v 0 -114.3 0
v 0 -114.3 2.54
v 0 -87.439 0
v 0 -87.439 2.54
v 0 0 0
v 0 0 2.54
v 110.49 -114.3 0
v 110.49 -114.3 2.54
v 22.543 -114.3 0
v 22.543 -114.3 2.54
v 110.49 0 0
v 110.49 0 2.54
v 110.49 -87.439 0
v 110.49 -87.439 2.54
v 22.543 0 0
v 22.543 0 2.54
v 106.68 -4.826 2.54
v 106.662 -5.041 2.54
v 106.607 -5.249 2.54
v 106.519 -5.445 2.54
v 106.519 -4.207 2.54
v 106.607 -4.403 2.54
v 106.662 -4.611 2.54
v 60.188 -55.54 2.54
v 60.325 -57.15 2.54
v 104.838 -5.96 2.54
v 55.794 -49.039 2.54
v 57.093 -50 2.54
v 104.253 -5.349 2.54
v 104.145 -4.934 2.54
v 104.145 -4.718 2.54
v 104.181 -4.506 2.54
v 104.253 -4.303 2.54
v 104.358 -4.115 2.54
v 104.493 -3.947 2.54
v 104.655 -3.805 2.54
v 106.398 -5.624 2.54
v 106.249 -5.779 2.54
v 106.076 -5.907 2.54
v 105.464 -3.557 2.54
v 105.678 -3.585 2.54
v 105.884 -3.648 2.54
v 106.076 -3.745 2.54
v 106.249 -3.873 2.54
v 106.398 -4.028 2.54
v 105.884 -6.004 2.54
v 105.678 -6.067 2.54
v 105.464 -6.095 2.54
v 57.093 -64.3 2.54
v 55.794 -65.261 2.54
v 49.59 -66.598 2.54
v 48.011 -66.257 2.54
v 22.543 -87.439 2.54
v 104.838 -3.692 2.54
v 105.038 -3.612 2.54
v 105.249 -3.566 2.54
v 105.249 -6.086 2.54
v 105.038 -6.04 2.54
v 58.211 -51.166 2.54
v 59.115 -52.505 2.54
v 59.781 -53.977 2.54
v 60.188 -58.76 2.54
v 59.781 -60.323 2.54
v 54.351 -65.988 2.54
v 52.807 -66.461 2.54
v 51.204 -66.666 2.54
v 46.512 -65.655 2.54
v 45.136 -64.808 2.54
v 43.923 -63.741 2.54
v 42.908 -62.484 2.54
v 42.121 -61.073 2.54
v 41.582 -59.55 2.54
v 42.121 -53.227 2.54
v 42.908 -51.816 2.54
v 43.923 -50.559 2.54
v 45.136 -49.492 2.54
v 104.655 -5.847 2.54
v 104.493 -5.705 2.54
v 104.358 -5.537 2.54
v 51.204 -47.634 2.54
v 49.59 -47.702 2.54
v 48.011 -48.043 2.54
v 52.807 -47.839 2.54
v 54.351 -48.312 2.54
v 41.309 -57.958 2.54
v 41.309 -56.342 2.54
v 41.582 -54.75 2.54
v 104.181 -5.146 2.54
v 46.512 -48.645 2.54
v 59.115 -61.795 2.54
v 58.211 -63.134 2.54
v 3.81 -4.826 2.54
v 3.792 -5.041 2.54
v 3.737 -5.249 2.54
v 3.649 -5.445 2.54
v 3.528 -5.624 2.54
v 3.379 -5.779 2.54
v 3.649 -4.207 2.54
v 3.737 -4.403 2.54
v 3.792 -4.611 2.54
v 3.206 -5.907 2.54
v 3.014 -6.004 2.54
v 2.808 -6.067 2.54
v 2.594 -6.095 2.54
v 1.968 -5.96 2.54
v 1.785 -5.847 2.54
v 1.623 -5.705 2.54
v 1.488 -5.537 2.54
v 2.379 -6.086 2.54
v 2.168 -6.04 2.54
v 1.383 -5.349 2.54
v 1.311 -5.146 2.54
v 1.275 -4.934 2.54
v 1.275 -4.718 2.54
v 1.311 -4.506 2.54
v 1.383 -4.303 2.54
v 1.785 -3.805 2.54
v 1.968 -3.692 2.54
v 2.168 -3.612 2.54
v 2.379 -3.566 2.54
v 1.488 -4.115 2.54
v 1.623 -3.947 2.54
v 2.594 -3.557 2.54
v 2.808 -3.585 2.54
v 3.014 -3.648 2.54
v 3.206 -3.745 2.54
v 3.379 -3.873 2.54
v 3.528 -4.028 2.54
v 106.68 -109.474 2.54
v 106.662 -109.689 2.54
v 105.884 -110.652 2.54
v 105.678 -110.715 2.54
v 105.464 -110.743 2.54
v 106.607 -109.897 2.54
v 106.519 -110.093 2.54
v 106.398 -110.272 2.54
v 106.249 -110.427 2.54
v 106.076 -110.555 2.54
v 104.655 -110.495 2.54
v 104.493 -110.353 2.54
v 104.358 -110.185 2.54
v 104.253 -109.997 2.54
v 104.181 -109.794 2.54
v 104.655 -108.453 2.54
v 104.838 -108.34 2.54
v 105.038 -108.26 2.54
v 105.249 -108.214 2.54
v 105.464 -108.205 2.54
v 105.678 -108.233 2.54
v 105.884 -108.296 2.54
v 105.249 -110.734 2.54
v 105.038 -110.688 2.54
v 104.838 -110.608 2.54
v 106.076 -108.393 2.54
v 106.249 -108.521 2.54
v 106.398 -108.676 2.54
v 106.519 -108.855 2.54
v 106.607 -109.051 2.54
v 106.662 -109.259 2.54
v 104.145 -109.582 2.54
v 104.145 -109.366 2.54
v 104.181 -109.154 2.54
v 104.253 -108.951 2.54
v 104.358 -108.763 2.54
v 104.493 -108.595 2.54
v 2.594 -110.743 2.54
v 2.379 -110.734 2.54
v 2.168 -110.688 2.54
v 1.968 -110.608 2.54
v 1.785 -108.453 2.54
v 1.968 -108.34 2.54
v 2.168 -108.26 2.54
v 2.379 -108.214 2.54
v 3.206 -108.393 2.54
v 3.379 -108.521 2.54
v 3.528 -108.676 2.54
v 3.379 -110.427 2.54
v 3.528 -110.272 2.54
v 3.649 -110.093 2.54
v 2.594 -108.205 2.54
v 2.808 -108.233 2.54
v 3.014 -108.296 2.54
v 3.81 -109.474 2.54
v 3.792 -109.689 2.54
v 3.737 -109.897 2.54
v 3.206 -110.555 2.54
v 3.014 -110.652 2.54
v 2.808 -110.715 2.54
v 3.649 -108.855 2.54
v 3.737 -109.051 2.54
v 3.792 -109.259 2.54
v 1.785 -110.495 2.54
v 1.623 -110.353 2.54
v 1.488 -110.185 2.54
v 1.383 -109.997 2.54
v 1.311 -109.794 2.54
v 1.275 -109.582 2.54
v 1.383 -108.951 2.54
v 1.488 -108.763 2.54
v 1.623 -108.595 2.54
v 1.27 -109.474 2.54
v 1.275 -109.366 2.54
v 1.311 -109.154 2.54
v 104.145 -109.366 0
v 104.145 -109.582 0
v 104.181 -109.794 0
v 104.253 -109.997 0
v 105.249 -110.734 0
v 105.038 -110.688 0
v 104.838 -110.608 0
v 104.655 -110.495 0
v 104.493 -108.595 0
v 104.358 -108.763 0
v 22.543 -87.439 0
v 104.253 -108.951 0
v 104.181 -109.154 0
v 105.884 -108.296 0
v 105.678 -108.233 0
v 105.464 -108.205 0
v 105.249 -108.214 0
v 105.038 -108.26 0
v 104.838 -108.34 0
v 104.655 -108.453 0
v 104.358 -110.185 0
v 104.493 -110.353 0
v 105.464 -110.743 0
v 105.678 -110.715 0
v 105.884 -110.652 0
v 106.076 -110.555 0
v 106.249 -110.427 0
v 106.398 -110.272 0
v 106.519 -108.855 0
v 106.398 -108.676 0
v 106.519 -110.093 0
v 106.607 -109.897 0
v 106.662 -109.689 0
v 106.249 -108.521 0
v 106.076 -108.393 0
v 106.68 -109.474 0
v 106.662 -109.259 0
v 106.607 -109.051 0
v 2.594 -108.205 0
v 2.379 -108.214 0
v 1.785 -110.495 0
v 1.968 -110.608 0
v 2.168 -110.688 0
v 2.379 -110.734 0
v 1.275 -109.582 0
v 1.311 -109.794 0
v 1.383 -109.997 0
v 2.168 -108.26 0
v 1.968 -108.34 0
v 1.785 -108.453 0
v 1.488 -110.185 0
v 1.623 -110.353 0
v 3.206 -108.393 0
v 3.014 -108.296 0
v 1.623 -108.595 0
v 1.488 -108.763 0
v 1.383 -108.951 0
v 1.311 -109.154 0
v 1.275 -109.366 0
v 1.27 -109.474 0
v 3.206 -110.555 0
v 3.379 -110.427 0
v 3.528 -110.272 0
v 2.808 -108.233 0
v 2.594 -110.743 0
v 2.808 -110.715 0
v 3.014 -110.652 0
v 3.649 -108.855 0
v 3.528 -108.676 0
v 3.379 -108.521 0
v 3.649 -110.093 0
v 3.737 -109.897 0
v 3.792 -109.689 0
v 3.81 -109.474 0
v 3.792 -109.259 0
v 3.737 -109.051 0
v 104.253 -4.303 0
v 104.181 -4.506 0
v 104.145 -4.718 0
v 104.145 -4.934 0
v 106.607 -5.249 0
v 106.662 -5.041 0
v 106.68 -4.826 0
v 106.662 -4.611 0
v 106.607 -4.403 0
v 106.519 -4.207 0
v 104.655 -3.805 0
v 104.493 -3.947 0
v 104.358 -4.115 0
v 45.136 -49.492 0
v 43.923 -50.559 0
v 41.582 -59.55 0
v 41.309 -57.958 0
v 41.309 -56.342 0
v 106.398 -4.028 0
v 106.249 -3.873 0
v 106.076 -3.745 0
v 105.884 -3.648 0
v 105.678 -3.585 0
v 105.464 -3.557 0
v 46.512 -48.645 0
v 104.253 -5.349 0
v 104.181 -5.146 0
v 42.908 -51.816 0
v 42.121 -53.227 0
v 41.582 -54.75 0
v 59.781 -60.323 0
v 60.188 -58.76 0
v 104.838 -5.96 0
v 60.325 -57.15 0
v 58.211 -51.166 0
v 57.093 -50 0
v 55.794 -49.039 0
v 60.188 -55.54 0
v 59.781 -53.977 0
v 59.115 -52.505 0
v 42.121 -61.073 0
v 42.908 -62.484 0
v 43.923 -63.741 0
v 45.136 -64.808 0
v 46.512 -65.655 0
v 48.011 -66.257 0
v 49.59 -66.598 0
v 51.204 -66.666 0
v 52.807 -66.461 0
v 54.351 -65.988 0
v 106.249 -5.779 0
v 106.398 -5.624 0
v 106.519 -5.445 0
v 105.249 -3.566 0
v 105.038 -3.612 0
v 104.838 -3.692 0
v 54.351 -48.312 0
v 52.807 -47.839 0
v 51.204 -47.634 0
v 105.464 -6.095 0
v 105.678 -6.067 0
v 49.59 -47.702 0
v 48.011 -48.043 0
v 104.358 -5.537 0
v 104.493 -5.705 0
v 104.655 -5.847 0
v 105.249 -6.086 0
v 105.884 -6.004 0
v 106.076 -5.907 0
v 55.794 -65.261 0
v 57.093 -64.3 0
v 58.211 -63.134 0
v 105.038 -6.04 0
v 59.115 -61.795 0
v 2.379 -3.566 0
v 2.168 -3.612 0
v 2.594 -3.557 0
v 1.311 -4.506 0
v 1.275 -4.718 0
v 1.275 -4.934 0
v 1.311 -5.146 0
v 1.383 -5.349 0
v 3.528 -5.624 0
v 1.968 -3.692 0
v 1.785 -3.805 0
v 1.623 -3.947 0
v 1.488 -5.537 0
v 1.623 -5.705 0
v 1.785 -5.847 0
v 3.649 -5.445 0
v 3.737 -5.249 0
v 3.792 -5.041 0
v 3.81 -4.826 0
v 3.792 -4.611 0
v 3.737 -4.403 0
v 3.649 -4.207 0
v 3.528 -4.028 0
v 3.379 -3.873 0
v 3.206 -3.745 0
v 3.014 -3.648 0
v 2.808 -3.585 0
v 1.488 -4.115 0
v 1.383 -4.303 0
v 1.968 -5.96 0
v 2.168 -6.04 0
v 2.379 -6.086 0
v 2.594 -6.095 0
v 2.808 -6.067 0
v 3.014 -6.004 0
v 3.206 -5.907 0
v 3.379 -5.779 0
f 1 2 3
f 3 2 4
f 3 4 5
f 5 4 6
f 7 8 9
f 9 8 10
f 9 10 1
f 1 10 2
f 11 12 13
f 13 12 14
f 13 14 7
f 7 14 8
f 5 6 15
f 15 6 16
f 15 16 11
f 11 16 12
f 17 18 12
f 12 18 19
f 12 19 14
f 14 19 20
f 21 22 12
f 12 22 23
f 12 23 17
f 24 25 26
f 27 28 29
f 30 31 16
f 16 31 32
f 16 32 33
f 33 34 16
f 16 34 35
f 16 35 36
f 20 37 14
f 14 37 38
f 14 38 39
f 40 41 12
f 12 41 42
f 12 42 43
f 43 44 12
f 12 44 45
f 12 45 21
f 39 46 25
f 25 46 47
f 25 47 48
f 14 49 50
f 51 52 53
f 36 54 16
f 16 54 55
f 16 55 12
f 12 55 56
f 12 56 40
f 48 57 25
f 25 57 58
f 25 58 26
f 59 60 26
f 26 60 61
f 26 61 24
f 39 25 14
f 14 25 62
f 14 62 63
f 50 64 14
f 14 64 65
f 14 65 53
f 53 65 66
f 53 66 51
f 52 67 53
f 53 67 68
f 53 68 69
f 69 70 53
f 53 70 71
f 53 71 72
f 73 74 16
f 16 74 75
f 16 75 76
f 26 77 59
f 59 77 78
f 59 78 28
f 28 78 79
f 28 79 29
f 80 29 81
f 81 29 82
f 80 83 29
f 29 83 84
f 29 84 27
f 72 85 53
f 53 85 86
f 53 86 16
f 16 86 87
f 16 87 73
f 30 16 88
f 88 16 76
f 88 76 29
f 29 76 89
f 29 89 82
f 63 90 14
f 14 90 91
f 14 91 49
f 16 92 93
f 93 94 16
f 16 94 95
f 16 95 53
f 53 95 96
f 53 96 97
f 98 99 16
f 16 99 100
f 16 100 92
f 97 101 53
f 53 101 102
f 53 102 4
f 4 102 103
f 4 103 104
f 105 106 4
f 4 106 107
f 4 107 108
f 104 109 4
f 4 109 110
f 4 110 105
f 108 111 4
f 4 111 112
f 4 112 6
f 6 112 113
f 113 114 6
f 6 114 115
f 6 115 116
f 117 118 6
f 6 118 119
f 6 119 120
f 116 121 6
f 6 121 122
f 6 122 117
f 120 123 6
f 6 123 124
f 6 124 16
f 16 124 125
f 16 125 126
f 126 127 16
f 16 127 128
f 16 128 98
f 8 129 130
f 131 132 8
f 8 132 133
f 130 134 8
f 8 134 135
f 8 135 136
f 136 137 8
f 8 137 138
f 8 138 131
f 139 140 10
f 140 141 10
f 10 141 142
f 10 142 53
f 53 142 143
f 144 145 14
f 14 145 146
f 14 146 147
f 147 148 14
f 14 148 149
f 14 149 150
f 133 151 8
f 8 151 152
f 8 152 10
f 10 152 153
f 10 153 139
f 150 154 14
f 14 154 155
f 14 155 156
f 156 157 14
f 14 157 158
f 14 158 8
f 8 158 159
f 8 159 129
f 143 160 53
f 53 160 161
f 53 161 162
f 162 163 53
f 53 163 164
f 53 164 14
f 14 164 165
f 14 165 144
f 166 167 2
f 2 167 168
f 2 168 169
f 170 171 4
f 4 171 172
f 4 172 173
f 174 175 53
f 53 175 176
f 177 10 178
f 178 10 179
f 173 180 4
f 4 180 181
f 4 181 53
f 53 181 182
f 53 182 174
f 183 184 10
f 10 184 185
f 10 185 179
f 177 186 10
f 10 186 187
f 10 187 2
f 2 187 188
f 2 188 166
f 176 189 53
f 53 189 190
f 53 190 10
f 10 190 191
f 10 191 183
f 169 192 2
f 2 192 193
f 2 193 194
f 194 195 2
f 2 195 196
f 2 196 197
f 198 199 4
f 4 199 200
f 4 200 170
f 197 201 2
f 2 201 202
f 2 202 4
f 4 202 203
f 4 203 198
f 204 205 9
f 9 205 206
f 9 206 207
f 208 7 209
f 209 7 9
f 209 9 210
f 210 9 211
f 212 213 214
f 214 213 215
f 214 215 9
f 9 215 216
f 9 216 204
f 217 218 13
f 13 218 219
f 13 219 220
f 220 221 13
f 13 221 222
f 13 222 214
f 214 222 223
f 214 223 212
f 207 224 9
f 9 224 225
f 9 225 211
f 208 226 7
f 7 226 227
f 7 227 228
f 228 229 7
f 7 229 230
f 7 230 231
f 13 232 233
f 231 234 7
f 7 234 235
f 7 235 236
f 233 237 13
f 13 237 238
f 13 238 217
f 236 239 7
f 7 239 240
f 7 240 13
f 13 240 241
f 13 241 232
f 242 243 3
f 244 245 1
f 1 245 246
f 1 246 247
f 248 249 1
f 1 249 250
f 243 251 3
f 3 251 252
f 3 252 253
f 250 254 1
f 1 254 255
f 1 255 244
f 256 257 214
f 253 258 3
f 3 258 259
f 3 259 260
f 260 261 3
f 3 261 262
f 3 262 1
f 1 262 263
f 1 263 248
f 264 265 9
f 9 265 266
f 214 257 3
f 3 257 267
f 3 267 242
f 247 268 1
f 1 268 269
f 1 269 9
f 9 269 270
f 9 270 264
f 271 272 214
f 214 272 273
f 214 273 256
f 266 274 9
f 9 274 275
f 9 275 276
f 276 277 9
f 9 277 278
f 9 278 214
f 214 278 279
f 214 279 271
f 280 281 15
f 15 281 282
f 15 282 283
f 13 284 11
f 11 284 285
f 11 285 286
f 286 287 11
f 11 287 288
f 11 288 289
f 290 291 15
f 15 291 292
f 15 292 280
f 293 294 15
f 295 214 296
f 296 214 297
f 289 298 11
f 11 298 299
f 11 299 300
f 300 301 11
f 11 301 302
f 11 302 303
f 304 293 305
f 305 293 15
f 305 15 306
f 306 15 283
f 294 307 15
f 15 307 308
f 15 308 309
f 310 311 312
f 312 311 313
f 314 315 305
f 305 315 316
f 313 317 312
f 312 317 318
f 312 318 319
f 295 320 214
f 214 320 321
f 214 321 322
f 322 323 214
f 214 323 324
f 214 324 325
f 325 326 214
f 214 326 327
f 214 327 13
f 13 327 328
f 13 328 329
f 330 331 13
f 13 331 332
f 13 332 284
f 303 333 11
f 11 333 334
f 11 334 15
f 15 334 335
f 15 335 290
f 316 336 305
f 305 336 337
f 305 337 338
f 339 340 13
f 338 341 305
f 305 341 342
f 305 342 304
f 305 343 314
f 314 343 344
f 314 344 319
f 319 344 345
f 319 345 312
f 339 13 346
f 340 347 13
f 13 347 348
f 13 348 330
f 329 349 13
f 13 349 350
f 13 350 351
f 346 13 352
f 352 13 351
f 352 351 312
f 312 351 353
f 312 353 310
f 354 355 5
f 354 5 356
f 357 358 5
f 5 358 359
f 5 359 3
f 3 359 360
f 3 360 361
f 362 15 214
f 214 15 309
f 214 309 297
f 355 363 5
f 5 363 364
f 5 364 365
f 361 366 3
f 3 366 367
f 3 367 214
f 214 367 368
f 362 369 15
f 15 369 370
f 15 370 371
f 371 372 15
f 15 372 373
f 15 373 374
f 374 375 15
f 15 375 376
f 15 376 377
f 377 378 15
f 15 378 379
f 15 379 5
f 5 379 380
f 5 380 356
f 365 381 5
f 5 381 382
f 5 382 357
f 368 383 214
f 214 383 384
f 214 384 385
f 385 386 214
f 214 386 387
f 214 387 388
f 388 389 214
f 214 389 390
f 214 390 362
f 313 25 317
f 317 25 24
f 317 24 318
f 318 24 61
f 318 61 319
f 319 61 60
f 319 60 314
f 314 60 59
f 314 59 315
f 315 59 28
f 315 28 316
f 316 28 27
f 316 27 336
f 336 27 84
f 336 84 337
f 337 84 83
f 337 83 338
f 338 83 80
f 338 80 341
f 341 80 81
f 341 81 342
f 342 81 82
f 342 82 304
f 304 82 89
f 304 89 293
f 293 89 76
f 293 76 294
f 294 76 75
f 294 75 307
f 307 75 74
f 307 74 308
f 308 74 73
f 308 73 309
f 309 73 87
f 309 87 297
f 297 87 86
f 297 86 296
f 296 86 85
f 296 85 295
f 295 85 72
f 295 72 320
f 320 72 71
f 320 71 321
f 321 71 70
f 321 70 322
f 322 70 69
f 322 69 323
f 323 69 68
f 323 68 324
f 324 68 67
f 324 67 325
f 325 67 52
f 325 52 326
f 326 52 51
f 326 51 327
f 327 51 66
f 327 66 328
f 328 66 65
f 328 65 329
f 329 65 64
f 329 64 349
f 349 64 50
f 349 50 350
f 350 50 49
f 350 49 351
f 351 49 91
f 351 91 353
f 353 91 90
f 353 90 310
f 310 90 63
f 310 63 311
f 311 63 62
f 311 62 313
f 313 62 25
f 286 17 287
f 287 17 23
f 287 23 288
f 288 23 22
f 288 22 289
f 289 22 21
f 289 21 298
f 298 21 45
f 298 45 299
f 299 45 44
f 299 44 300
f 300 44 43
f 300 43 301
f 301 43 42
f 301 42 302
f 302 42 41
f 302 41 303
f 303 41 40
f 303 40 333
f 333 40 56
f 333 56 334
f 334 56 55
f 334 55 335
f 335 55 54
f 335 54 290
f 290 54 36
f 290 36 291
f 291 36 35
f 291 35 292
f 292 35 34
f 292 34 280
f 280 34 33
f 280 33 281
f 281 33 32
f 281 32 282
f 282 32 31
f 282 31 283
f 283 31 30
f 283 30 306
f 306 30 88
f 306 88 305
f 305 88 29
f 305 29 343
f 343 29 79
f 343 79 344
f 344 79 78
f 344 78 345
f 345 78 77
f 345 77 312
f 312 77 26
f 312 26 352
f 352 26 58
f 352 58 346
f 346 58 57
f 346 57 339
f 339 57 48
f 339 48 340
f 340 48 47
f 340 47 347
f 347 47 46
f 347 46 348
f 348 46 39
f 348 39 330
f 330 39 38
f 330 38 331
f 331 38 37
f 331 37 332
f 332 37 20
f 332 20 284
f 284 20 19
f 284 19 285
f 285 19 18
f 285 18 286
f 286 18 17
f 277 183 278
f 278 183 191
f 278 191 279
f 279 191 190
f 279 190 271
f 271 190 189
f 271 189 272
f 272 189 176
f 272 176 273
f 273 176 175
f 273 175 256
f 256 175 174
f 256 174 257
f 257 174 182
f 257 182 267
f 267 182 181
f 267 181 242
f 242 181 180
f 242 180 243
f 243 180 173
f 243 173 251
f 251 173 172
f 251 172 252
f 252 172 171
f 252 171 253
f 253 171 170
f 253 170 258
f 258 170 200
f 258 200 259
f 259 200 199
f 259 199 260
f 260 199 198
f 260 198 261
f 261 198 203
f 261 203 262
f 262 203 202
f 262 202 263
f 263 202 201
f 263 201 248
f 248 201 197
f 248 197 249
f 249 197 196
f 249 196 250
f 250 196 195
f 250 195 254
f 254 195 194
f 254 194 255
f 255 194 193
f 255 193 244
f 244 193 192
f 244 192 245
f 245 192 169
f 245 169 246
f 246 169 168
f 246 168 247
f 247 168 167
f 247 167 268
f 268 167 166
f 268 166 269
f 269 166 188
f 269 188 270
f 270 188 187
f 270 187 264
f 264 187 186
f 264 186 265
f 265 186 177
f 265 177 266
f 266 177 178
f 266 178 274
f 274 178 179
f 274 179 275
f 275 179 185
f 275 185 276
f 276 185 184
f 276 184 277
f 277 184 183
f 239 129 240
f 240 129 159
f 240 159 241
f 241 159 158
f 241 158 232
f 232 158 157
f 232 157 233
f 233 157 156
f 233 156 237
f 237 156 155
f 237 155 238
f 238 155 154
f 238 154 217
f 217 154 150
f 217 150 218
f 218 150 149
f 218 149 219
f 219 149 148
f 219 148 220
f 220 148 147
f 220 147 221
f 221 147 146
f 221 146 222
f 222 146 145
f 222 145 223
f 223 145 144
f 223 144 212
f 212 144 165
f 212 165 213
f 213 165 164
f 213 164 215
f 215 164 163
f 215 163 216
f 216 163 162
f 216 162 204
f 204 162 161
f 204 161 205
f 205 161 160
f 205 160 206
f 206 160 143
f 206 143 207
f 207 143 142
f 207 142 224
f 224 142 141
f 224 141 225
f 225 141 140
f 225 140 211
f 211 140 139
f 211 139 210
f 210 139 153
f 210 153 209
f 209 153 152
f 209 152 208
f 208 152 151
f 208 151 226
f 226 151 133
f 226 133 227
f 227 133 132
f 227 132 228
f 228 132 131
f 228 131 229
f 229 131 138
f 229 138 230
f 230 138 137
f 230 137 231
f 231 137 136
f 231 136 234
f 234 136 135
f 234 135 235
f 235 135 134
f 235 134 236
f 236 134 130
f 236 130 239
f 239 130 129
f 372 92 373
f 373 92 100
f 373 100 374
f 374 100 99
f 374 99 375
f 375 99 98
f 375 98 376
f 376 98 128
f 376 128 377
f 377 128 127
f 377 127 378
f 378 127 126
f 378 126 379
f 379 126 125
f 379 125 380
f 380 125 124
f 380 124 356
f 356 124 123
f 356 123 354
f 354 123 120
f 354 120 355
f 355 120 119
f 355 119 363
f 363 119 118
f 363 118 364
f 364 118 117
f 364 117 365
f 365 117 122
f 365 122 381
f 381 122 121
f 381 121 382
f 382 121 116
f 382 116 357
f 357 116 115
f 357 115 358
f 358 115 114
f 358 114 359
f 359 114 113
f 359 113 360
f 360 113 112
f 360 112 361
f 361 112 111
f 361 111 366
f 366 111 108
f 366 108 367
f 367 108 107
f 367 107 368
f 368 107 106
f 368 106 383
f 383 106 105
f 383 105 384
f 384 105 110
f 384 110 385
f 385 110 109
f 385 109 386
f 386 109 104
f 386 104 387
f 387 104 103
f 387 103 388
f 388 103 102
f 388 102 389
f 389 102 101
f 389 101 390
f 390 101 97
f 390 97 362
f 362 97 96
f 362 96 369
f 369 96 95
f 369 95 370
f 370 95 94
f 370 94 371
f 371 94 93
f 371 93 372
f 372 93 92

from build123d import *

# Parameters (mm, degrees)
SKETCH1_W           = 110.49
SKETCH1_H           = 114.3
BOSS_EXTRUDE1_DEPTH = 2.54
SKETCH2_R           = 9.525
CUT_EXTRUDE1_DEPTH  = 2.54
SKETCH3_R           = 1.27
CUT_EXTRUDE2_DEPTH  = 159.993653018


with BuildPart() as part:
    # Sketch1 → Boss-Extrude1 (new body)
    with BuildSketch(Plane.XY):
        with Locations((55.245, -57.15)):
            Rectangle(SKETCH1_W, SKETCH1_H)
    extrude(amount=BOSS_EXTRUDE1_DEPTH)

    # Sketch2 → Cut-Extrude1 (cut)
    with BuildSketch(Plane.XY.offset(2.54)):
        with Locations((50.8, -57.15)):
            Circle(SKETCH2_R)
    extrude(amount=-CUT_EXTRUDE1_DEPTH, mode=Mode.SUBTRACT)

    # Sketch3 → Cut-Extrude2 (cut, through all)
    with BuildSketch(Plane.XY.offset(2.54)):
        with Locations((2.54, -4.826)):
            Circle(SKETCH3_R)
        with Locations(Location((2.54, -109.474, 0), (0, 0, 180))):
            Circle(SKETCH3_R)
        with Locations((105.41, -4.826)):
            Circle(SKETCH3_R)
        with Locations((105.41, -109.474)):
            Circle(SKETCH3_R)
    extrude(amount=-CUT_EXTRUDE2_DEPTH, mode=Mode.SUBTRACT)


solid = part.part
